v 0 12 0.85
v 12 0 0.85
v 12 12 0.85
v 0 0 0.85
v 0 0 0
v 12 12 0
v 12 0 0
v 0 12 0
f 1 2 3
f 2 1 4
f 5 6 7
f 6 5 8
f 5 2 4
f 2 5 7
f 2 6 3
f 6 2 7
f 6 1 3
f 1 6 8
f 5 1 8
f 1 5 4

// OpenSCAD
/* Warning, this is a very basic generator with a lot of approximation 
input data : [QFN, 2HC, 12x12x0.85mm, 135, , A, C04-25006A]
generated by com.zoubworld.electronics.cad.model3d.Basic
Date : Sun Feb 15 10:50:49 CET 2026
*/

//body
color("black")
translate([0,0,0])
cube([12.0,12.0,0.85], center=false);
